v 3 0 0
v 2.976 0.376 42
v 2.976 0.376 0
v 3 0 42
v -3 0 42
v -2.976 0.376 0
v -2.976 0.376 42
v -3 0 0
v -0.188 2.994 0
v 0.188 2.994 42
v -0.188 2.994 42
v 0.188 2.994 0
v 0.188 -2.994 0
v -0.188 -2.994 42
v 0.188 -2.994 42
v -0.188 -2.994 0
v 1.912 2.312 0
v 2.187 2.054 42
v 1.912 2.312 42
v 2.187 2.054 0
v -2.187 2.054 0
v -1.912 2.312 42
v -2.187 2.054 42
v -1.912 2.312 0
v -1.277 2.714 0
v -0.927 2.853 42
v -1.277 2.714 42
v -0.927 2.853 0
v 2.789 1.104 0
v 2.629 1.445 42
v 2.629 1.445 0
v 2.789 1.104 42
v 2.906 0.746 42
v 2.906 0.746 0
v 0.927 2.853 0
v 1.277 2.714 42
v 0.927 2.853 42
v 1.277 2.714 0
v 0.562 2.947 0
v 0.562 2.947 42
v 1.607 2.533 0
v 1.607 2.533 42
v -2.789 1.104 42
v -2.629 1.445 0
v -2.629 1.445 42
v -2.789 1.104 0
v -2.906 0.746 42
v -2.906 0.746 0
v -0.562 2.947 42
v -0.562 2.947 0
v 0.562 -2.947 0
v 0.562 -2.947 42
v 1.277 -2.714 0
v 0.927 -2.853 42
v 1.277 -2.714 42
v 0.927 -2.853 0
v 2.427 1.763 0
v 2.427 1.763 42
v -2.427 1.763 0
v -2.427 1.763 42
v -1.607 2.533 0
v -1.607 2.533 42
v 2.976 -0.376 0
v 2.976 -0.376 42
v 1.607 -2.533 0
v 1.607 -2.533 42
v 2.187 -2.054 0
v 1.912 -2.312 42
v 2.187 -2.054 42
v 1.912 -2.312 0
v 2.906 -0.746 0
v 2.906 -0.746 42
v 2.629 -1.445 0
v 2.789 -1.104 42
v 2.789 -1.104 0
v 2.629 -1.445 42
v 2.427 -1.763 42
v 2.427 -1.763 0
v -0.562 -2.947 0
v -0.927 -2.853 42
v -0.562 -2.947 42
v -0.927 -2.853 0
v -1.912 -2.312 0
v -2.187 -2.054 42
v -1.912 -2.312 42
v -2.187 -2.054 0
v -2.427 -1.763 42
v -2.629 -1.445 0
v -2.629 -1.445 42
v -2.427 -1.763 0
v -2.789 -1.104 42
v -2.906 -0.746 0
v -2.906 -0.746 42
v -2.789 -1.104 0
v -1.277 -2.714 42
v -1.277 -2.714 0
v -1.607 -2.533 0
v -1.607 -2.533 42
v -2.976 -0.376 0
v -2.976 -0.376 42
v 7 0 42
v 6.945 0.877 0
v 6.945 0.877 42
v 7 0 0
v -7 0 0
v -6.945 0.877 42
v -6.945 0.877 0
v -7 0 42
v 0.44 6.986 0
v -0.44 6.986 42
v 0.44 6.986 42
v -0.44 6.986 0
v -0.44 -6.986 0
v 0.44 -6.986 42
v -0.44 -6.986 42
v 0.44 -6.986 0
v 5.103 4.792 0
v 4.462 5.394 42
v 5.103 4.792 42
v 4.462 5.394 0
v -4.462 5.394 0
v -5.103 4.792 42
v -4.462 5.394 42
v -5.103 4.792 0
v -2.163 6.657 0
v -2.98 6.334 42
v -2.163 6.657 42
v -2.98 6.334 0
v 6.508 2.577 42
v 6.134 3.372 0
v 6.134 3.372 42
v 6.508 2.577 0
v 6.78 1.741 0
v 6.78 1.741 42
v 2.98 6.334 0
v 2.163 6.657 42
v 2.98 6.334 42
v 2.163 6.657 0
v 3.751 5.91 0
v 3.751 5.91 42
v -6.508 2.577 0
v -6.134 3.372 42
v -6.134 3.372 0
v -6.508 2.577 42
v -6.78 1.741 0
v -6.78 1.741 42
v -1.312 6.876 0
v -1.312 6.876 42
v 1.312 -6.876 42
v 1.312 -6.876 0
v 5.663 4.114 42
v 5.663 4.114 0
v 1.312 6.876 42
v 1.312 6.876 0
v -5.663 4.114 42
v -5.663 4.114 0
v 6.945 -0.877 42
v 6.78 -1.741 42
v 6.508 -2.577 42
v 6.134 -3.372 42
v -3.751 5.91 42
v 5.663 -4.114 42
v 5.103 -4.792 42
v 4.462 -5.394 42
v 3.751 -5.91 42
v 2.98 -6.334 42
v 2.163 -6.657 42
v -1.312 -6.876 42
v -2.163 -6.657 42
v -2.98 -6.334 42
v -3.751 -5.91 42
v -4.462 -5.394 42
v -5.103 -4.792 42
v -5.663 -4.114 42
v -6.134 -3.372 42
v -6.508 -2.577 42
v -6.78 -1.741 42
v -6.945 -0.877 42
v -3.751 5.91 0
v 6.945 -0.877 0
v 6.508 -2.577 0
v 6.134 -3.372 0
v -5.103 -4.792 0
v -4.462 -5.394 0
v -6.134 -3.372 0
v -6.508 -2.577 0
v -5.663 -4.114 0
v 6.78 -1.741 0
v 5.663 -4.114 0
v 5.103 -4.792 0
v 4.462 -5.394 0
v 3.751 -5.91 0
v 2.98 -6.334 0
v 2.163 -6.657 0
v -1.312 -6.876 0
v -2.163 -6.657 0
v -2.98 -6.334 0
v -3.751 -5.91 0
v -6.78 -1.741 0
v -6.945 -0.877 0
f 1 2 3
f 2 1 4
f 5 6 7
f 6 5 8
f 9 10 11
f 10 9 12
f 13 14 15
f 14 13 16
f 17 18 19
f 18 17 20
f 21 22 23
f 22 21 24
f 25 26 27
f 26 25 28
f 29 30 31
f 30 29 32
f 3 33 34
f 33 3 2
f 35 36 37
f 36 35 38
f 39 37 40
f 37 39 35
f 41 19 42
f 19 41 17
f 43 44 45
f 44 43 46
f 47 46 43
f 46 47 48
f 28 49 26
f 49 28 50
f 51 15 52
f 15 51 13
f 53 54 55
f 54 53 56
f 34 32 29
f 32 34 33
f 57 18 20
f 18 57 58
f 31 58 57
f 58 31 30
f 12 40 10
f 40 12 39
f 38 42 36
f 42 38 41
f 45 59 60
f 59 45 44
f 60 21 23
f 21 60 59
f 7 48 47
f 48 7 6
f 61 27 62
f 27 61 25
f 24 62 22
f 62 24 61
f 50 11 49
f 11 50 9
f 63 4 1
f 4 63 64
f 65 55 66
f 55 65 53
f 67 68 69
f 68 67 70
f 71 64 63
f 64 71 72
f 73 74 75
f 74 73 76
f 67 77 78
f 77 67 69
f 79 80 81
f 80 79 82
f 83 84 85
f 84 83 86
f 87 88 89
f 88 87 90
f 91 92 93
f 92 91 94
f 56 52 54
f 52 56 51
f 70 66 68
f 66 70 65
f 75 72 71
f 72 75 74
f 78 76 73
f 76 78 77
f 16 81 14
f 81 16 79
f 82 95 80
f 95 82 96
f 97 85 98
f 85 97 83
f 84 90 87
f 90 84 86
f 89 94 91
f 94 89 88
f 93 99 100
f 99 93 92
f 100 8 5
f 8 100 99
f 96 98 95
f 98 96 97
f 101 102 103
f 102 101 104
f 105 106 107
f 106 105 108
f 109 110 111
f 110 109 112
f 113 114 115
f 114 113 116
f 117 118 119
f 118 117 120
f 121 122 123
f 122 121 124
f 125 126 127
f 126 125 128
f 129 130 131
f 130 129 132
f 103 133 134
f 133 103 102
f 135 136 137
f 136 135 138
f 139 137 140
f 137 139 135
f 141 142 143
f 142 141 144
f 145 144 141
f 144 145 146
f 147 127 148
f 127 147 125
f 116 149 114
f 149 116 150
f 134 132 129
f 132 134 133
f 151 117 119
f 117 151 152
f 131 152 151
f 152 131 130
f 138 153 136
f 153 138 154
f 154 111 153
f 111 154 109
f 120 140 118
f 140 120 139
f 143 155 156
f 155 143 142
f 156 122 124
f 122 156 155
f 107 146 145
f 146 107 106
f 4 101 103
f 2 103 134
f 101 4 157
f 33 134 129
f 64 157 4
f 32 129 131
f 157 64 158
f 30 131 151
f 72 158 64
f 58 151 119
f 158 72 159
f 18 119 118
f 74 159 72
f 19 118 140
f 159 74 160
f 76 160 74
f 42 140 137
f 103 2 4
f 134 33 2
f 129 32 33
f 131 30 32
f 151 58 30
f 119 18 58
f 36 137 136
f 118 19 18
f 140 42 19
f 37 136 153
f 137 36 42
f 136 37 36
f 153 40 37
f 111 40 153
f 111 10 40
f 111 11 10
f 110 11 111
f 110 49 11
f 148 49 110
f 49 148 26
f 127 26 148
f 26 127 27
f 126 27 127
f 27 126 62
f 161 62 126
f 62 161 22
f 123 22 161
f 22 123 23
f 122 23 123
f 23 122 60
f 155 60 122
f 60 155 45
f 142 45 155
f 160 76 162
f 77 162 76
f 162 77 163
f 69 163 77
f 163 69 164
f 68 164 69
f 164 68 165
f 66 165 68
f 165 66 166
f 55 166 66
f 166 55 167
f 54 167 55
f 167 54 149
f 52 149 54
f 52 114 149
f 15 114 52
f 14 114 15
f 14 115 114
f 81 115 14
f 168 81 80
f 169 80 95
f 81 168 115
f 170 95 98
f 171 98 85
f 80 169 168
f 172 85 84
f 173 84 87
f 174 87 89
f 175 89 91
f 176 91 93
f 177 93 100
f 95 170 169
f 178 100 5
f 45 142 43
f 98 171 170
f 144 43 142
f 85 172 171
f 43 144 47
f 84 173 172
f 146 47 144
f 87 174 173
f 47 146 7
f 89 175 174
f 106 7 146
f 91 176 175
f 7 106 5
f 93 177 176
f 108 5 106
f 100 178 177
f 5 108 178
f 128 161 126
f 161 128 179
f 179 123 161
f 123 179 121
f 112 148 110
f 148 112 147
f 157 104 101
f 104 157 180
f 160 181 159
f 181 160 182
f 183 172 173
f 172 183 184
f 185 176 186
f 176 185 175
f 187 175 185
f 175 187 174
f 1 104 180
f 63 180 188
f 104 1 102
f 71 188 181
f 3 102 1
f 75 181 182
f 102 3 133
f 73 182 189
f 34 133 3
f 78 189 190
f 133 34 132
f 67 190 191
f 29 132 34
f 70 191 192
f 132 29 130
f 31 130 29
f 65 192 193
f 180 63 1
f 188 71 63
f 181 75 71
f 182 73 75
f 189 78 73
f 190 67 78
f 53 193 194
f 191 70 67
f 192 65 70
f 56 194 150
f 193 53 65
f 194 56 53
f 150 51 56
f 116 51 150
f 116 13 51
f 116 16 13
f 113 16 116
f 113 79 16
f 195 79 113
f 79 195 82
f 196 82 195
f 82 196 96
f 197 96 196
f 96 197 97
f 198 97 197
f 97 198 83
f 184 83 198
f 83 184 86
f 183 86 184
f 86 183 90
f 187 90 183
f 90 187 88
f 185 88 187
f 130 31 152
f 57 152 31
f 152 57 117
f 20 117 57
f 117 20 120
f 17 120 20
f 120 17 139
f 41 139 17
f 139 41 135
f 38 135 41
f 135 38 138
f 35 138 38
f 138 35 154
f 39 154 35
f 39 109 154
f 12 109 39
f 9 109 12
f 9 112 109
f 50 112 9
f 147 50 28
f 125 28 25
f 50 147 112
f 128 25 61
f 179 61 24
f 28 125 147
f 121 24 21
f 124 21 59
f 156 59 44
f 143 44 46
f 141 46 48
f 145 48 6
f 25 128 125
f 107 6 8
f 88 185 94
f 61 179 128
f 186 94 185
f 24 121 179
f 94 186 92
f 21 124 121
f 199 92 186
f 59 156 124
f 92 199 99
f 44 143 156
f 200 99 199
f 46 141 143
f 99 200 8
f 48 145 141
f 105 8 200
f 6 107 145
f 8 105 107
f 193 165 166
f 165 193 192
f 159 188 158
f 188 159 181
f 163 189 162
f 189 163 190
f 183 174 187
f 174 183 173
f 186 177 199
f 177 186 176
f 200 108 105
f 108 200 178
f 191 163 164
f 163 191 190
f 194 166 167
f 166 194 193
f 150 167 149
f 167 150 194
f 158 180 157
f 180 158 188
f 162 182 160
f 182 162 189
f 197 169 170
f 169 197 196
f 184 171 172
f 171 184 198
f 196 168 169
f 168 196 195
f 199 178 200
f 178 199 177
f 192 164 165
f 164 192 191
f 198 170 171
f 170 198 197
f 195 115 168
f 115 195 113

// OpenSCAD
$fn = 50;


difference() {
	union() {
		cylinder(h = 42, r = 7.0000000000);
	}
	union() {
		translate(v = [0, 0, -100]) {
			cylinder(h = 200, r = 3.0000000000);
		}
	}
}
